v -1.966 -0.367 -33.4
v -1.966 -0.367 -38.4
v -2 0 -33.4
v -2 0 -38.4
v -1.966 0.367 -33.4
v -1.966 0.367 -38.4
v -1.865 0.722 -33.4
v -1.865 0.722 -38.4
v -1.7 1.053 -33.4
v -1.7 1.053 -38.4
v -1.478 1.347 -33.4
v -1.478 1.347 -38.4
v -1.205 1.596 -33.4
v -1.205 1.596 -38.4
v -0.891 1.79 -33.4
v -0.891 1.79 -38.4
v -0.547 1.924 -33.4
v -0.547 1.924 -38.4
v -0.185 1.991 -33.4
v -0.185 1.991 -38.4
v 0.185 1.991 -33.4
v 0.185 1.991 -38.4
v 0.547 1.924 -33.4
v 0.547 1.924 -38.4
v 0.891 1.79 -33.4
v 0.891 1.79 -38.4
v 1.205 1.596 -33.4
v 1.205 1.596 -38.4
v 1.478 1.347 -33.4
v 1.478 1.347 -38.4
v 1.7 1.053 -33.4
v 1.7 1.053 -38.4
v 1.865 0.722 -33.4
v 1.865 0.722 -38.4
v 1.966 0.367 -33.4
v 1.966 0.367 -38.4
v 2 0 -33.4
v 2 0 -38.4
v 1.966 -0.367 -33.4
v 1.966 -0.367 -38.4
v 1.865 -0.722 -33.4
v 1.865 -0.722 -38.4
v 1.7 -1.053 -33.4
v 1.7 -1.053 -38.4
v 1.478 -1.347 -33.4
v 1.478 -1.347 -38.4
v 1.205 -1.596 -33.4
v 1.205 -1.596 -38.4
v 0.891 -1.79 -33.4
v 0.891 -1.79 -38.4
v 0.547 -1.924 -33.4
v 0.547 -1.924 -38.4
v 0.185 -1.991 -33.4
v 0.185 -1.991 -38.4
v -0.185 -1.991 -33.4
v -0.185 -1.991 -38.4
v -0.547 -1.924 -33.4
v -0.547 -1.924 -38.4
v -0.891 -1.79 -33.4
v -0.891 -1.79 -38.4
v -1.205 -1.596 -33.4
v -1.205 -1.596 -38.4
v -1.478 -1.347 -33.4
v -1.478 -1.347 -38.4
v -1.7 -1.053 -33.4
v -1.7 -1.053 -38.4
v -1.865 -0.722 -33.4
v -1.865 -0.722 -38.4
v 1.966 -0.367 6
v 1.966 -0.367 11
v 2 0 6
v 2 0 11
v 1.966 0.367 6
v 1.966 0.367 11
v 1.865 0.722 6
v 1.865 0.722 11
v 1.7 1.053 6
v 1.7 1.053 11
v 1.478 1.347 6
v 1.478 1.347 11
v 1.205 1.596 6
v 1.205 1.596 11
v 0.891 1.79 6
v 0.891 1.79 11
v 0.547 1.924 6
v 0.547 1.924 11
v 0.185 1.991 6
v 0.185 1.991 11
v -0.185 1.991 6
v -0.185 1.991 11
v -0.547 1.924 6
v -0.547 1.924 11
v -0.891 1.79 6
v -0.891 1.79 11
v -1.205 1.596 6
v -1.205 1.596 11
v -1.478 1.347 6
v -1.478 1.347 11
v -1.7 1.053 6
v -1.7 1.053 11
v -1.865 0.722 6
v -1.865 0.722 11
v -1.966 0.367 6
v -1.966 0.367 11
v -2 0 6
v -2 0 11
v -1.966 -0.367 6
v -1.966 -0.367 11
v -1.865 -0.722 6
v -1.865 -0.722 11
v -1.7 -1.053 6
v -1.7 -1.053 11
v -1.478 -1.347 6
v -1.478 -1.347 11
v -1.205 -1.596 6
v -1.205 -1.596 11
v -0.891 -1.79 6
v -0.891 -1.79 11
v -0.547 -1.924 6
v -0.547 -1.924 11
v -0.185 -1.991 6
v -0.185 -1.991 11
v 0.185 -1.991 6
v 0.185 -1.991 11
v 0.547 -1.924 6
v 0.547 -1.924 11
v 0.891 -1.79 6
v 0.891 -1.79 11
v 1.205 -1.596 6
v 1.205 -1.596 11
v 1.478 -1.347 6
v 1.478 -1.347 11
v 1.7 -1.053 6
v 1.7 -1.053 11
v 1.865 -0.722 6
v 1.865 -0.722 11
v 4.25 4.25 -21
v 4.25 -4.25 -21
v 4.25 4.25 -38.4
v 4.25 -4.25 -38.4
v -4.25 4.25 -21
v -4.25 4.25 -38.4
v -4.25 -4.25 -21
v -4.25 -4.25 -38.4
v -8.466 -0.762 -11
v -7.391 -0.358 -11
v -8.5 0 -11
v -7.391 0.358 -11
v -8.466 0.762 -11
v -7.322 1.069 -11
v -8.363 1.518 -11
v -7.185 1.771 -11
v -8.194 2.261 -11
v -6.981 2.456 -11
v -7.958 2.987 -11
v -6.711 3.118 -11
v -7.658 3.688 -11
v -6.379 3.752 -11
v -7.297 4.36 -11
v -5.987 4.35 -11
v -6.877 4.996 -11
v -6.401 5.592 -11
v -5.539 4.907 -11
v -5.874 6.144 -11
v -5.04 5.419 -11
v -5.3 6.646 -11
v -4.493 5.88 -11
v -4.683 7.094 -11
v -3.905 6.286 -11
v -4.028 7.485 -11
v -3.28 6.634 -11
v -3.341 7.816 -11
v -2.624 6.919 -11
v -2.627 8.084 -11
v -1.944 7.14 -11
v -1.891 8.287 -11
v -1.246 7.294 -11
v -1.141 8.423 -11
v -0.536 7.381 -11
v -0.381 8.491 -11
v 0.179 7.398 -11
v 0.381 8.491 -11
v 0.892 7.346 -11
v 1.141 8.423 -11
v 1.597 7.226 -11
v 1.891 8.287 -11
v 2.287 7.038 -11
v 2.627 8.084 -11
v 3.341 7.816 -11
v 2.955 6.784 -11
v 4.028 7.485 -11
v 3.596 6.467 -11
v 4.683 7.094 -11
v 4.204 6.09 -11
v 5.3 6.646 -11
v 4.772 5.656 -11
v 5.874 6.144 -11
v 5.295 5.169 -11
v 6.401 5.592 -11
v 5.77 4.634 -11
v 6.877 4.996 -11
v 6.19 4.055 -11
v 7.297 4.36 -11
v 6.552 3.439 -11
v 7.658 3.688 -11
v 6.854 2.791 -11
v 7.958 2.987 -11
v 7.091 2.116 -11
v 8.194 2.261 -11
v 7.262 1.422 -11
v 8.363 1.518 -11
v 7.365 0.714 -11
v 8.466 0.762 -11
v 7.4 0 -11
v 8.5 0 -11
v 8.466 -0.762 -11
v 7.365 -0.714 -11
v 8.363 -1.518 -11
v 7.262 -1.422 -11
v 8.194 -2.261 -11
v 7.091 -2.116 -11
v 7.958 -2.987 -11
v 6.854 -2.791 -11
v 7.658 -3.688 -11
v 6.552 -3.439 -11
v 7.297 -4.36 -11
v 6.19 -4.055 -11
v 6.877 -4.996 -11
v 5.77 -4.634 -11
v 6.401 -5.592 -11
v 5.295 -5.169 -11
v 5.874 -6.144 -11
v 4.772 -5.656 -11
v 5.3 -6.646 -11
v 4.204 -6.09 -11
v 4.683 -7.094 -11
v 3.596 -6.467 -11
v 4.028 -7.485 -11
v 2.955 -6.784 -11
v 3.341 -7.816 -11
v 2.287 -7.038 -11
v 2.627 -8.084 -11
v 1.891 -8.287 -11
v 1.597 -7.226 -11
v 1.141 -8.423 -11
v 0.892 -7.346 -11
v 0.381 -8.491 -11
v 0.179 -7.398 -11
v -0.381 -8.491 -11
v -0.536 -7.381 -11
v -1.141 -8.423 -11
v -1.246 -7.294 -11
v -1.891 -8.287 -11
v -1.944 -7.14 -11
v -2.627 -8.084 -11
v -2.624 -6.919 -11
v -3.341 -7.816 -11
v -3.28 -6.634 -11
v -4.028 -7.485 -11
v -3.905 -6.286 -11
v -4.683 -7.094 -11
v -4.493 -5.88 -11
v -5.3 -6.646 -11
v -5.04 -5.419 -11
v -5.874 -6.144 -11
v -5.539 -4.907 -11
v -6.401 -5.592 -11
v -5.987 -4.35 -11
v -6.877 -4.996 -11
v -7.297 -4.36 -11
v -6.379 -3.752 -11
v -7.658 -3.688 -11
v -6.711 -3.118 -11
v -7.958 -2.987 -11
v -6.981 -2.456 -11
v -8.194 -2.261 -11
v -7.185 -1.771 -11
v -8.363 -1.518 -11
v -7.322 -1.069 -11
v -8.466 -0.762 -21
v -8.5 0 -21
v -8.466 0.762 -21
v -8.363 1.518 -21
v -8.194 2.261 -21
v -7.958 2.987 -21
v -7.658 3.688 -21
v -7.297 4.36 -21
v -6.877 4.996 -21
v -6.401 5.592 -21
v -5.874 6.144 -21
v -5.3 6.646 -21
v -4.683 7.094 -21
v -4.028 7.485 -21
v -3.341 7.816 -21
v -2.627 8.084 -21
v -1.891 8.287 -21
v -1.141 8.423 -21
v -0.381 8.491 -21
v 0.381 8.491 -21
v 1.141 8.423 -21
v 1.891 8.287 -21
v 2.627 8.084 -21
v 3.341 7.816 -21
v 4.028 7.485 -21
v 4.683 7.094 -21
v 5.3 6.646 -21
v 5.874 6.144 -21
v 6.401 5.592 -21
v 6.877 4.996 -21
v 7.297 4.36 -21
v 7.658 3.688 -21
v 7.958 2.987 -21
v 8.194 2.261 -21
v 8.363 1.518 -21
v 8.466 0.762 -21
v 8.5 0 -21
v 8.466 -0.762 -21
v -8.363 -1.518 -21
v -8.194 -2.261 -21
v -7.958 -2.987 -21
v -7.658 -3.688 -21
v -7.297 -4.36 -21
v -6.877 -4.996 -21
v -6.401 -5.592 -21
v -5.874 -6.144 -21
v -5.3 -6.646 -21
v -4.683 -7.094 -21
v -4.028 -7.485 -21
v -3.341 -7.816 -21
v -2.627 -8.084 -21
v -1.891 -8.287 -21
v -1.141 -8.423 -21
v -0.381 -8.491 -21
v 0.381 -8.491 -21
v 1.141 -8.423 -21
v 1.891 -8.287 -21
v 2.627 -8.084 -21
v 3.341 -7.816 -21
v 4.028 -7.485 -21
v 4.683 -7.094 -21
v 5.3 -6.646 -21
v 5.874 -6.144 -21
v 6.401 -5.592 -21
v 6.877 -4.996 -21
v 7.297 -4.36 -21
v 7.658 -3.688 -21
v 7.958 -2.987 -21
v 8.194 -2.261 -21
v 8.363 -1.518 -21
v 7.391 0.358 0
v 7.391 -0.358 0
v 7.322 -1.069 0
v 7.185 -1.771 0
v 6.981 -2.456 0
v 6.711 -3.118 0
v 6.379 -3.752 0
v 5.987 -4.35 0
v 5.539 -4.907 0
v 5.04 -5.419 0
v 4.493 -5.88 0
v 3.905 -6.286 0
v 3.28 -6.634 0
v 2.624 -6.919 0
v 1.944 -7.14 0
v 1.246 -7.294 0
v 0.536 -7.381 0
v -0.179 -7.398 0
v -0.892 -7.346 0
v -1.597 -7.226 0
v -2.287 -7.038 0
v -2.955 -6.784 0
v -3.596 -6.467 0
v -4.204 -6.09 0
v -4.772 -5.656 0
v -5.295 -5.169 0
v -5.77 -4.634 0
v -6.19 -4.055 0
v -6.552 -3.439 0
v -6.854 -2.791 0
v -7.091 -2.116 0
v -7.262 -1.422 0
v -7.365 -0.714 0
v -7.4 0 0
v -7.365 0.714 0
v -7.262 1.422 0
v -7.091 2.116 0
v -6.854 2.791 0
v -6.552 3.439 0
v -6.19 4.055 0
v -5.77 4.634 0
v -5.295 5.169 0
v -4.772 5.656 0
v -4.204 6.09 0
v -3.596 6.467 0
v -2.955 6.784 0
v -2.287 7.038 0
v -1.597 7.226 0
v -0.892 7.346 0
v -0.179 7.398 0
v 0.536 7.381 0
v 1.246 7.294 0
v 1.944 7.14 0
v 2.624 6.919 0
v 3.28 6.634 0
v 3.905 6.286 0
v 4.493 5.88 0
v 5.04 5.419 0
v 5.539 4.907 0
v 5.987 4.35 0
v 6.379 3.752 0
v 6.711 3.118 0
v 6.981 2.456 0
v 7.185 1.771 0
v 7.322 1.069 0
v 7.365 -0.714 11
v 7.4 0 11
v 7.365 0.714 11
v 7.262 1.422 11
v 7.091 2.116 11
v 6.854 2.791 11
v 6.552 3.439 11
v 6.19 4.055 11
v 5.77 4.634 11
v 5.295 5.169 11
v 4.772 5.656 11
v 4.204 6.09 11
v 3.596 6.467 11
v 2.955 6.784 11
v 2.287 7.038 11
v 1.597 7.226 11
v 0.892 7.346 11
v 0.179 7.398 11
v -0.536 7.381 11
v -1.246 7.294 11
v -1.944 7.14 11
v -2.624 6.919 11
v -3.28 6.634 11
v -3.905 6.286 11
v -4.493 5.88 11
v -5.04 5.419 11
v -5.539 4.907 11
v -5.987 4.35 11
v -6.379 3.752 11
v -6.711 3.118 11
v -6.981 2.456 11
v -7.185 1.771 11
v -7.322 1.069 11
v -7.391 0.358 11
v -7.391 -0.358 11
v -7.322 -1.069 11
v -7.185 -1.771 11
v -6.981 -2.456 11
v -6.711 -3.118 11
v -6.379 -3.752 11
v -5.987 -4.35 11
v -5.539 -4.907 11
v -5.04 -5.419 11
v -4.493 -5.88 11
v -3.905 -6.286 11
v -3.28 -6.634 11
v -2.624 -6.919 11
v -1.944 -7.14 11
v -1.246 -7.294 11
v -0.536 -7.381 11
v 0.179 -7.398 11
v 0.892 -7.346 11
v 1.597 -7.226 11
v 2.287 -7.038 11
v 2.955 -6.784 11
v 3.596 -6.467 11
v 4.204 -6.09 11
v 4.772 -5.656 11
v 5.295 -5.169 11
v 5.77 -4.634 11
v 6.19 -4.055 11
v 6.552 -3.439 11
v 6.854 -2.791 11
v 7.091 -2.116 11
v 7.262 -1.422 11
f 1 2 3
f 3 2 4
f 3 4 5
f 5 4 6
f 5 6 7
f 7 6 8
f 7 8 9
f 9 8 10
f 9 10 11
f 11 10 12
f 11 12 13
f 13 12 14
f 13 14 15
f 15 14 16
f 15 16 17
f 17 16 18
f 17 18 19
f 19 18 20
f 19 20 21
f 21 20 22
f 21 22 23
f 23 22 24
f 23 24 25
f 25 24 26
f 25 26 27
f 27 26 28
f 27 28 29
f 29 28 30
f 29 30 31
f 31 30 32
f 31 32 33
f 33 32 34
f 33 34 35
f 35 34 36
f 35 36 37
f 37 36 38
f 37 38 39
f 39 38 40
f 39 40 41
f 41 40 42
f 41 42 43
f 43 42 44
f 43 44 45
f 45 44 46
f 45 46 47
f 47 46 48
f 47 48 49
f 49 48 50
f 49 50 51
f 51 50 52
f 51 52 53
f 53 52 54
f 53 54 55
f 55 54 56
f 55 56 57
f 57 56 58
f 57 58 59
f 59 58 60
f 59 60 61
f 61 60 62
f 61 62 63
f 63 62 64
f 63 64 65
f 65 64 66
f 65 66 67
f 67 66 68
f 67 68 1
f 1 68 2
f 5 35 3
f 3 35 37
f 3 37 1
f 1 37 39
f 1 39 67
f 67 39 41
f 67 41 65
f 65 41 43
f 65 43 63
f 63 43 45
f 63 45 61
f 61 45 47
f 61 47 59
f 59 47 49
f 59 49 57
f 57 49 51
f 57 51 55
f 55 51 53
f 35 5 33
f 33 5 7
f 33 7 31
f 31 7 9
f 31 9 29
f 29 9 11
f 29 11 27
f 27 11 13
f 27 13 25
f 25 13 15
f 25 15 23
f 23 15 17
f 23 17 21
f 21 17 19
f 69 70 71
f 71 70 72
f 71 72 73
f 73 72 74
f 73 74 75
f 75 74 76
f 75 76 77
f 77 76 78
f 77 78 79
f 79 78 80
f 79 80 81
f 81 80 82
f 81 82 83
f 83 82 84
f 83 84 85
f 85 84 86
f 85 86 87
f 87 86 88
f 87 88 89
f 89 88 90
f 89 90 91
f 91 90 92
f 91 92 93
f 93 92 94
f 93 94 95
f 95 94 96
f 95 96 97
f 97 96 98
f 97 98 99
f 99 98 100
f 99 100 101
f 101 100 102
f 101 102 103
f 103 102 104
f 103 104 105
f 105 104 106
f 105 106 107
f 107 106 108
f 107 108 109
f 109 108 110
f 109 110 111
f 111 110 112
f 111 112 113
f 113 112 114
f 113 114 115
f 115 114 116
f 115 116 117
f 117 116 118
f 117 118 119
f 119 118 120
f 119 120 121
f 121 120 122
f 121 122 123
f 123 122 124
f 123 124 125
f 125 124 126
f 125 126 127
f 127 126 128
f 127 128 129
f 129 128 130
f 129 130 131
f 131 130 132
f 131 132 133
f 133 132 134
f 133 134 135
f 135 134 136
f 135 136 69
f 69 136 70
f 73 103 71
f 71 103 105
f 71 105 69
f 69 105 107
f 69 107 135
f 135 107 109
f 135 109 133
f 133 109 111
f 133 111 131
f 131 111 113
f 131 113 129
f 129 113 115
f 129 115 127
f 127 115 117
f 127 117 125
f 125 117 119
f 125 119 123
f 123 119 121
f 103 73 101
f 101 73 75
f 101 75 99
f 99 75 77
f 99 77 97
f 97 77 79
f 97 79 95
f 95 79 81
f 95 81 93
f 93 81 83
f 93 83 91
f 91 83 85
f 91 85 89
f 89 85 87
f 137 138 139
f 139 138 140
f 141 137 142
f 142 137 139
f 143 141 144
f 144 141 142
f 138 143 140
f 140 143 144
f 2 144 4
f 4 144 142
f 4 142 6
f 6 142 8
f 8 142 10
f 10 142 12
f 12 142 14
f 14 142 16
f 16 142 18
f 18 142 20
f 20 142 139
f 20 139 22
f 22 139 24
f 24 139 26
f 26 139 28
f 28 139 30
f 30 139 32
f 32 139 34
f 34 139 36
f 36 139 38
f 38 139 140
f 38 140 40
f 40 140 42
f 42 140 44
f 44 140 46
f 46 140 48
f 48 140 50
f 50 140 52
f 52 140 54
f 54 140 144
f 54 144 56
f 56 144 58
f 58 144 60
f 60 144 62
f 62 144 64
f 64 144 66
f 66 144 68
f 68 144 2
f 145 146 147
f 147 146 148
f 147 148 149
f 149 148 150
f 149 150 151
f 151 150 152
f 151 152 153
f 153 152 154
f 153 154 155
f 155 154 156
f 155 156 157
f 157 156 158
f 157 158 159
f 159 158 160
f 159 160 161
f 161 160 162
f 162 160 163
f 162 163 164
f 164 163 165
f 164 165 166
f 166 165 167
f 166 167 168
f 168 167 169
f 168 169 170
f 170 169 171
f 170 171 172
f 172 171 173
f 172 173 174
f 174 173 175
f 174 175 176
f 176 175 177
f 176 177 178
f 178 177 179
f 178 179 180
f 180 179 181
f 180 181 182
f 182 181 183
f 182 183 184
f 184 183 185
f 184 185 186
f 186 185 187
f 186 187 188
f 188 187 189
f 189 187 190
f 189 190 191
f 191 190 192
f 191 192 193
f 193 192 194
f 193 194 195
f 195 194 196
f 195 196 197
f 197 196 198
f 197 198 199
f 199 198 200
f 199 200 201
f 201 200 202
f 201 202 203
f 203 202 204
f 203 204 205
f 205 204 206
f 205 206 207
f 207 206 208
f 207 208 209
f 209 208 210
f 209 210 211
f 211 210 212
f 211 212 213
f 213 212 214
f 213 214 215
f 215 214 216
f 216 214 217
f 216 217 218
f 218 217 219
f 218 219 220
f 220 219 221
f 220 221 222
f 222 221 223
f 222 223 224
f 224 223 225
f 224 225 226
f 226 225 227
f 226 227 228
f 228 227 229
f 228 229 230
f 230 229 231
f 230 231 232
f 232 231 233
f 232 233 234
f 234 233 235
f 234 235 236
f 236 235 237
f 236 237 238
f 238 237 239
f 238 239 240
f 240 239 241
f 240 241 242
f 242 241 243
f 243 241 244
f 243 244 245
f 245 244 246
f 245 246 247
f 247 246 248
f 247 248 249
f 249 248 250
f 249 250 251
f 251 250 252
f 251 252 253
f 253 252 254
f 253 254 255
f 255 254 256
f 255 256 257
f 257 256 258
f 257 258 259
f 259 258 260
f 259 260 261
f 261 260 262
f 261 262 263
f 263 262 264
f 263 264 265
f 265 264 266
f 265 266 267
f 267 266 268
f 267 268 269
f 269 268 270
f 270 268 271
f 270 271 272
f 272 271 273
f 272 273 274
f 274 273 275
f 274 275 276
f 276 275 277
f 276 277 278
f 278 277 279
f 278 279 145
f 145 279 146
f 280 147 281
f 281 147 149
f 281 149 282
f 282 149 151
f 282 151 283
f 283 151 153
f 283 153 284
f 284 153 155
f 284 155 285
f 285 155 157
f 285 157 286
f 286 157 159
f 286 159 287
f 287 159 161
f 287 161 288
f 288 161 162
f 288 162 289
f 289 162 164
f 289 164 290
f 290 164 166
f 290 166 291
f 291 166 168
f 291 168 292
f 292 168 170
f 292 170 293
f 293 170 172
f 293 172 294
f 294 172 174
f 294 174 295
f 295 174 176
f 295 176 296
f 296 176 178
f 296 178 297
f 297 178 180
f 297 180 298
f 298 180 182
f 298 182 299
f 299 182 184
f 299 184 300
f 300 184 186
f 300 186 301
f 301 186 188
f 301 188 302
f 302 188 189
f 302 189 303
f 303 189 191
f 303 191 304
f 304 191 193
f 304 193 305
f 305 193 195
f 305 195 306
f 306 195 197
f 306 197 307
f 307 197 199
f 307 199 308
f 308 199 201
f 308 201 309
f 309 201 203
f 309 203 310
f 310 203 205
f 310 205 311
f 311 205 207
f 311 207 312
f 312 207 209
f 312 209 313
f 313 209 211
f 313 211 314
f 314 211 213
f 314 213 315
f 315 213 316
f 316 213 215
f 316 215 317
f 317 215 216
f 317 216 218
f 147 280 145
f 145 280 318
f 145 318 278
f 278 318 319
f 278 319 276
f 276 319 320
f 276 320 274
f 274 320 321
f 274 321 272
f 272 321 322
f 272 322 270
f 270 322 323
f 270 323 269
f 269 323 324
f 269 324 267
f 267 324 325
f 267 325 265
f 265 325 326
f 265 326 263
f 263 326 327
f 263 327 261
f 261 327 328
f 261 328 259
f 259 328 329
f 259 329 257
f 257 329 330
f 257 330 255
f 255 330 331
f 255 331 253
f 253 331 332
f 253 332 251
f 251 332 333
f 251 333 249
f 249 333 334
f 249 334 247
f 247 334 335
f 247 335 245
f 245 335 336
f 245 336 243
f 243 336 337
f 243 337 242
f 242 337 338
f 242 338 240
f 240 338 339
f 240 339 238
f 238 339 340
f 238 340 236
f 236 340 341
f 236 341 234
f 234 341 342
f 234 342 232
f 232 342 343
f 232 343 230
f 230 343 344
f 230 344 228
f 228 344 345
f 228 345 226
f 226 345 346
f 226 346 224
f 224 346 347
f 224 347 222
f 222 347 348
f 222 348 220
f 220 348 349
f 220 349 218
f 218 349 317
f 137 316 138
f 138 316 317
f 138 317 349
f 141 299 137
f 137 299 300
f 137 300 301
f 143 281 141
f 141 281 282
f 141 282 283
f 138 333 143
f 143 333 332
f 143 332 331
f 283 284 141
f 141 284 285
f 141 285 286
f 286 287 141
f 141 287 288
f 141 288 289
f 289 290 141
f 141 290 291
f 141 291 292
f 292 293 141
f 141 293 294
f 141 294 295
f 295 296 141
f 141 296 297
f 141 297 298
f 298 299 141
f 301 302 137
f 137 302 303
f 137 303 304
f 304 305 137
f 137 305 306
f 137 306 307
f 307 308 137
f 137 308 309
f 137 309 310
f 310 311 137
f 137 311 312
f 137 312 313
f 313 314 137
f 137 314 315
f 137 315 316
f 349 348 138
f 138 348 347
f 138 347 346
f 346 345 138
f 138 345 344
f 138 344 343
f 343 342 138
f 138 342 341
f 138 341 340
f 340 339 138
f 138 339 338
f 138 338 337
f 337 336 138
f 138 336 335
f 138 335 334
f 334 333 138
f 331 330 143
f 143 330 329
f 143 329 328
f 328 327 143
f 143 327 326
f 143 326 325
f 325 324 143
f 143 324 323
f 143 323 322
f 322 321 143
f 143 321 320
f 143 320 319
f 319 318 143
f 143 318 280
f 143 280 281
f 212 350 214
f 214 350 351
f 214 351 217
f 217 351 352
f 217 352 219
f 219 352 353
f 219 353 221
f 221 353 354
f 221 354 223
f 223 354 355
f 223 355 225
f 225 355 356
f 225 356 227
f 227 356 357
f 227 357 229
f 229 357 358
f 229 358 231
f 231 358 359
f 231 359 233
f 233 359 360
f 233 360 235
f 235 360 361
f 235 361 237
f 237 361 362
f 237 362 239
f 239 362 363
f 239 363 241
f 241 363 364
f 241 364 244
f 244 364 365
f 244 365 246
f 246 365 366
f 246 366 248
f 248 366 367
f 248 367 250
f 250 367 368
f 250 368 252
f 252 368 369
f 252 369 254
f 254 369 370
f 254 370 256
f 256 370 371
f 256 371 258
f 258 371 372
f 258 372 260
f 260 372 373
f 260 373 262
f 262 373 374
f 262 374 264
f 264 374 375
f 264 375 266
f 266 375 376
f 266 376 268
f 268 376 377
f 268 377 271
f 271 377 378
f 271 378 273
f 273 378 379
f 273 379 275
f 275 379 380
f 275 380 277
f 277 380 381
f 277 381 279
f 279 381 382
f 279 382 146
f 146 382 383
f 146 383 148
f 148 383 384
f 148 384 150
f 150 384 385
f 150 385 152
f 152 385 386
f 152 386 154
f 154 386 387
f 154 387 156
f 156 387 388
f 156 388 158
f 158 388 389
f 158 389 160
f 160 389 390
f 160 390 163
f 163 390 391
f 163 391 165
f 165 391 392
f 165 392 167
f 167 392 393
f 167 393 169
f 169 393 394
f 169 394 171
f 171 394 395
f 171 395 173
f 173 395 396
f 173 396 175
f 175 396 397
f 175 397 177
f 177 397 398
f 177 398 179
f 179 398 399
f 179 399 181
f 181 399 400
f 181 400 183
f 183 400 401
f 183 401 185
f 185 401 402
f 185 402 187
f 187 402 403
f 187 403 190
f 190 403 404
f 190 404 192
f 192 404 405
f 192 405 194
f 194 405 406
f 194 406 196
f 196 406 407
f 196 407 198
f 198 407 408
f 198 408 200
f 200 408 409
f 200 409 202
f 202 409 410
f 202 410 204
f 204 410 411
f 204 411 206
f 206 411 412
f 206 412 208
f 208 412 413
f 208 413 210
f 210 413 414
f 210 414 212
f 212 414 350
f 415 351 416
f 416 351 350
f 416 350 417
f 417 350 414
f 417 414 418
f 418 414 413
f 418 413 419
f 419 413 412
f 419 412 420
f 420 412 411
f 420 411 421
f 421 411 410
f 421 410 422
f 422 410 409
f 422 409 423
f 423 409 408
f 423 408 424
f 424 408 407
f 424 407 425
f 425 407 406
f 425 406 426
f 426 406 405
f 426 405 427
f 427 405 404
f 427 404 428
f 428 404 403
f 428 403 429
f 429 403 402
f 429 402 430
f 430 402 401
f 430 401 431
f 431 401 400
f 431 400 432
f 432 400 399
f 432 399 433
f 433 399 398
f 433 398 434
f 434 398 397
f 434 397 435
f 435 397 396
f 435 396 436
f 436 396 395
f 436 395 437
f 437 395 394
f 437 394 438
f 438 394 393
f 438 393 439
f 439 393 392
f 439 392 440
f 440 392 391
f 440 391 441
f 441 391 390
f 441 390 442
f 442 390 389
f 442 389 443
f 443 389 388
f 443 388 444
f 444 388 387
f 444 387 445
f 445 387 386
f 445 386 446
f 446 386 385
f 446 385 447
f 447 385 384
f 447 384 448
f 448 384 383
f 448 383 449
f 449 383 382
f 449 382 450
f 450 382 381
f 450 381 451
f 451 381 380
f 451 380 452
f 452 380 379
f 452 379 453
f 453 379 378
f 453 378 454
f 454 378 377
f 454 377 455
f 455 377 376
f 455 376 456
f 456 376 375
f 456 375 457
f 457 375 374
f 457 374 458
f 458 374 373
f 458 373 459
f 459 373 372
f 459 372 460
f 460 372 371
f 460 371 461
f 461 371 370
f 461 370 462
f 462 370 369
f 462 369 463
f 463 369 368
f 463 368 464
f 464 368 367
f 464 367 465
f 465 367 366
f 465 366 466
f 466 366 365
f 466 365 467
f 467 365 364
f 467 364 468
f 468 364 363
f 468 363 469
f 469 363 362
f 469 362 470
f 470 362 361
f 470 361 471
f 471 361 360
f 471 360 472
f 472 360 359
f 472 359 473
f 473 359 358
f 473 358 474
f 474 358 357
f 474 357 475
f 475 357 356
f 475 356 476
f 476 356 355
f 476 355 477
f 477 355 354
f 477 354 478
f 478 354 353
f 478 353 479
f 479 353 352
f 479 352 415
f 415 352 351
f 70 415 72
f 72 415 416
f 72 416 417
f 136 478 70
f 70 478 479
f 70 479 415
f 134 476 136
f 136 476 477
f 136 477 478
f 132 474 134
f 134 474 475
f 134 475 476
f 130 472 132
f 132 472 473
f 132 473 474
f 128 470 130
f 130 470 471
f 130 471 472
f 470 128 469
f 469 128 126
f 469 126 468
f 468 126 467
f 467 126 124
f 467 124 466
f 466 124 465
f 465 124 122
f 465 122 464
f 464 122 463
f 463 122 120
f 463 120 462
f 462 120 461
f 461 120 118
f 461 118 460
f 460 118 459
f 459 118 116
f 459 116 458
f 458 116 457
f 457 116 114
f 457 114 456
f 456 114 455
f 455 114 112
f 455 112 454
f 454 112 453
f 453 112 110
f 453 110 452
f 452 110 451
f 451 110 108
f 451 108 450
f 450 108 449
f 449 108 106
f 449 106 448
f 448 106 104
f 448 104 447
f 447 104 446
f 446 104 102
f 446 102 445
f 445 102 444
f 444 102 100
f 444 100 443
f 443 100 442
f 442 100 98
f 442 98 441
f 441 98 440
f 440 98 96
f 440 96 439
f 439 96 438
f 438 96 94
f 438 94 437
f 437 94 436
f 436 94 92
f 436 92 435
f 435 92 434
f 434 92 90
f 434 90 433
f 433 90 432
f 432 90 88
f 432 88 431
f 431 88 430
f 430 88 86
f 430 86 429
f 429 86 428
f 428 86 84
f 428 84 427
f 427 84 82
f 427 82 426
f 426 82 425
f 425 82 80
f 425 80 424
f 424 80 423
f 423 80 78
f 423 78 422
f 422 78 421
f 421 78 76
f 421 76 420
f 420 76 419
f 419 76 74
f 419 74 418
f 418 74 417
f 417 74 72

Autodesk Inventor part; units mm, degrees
ref_plane "XZ Plane" through (0, 0, 0) normal (0, 1, 0) x (-1, 0, 0)
ref_plane "XY Plane" through (0, 0, 0) normal (0, 0, 1) x (1, 0, 0)
sketch "Skizze1" plane through (0, 0, 0) normal (0, 0, 1) x (1, 0, 0)
  circle A0 centre (0, 0) radius 7.4
  dimension "d0" = 14.8
extrude "Extrusion1" add sketch "Skizze1" along normal mid plane 22
sketch "Skizze2" plane through (0, 0, -11) normal (0, 0, -1) x (-1, 0, 0)
  circle A0 centre (0, 0) radius 8.5
  dimension "d3" = 17
extrude "Extrusion2" add sketch "Skizze2" along normal blind 10
sketch "Skizze3" plane through (0, 0, -21) normal (0, 0, -1) x (-1, 0, 0)
  line L0 (-4.25, 4.25) -> (4.25, 4.25)
  line L1 (4.25, 4.25) -> (4.25, -4.25)
  line L2 (4.25, -4.25) -> (-4.25, -4.25)
  line L3 (-4.25, -4.25) -> (-4.25, 4.25)
  line L4 (-4.25, 4.25) -> (4.25, -4.25) construction
  line L5 (4.25, 4.25) -> (-4.25, -4.25) construction
  point P0 (0, 0)
  dimension "d6" = 8.5
  dimension "d7" = 8.5
extrude "Extrusion3" add sketch "Skizze3" along normal blind 17.4
sketch "Skizze4" plane through (0, 0, 11) normal (0, 0, 1) x (1, 0, 0)
  circle A0 centre (0, 0) radius 2
  dimension "d10" = 4
extrude "Extrusion4" cut sketch "Skizze4" against normal blind 5
sketch "Skizze5" plane through (0, 0, -38.4) normal (0, 0, -1) x (-1, 0, 0)
  circle A0 centre (0, 0) radius 2
  dimension "d13" = 4
extrude "Extrusion5" cut sketch "Skizze5" against normal blind 5
properties part number "_3D-Druck"
